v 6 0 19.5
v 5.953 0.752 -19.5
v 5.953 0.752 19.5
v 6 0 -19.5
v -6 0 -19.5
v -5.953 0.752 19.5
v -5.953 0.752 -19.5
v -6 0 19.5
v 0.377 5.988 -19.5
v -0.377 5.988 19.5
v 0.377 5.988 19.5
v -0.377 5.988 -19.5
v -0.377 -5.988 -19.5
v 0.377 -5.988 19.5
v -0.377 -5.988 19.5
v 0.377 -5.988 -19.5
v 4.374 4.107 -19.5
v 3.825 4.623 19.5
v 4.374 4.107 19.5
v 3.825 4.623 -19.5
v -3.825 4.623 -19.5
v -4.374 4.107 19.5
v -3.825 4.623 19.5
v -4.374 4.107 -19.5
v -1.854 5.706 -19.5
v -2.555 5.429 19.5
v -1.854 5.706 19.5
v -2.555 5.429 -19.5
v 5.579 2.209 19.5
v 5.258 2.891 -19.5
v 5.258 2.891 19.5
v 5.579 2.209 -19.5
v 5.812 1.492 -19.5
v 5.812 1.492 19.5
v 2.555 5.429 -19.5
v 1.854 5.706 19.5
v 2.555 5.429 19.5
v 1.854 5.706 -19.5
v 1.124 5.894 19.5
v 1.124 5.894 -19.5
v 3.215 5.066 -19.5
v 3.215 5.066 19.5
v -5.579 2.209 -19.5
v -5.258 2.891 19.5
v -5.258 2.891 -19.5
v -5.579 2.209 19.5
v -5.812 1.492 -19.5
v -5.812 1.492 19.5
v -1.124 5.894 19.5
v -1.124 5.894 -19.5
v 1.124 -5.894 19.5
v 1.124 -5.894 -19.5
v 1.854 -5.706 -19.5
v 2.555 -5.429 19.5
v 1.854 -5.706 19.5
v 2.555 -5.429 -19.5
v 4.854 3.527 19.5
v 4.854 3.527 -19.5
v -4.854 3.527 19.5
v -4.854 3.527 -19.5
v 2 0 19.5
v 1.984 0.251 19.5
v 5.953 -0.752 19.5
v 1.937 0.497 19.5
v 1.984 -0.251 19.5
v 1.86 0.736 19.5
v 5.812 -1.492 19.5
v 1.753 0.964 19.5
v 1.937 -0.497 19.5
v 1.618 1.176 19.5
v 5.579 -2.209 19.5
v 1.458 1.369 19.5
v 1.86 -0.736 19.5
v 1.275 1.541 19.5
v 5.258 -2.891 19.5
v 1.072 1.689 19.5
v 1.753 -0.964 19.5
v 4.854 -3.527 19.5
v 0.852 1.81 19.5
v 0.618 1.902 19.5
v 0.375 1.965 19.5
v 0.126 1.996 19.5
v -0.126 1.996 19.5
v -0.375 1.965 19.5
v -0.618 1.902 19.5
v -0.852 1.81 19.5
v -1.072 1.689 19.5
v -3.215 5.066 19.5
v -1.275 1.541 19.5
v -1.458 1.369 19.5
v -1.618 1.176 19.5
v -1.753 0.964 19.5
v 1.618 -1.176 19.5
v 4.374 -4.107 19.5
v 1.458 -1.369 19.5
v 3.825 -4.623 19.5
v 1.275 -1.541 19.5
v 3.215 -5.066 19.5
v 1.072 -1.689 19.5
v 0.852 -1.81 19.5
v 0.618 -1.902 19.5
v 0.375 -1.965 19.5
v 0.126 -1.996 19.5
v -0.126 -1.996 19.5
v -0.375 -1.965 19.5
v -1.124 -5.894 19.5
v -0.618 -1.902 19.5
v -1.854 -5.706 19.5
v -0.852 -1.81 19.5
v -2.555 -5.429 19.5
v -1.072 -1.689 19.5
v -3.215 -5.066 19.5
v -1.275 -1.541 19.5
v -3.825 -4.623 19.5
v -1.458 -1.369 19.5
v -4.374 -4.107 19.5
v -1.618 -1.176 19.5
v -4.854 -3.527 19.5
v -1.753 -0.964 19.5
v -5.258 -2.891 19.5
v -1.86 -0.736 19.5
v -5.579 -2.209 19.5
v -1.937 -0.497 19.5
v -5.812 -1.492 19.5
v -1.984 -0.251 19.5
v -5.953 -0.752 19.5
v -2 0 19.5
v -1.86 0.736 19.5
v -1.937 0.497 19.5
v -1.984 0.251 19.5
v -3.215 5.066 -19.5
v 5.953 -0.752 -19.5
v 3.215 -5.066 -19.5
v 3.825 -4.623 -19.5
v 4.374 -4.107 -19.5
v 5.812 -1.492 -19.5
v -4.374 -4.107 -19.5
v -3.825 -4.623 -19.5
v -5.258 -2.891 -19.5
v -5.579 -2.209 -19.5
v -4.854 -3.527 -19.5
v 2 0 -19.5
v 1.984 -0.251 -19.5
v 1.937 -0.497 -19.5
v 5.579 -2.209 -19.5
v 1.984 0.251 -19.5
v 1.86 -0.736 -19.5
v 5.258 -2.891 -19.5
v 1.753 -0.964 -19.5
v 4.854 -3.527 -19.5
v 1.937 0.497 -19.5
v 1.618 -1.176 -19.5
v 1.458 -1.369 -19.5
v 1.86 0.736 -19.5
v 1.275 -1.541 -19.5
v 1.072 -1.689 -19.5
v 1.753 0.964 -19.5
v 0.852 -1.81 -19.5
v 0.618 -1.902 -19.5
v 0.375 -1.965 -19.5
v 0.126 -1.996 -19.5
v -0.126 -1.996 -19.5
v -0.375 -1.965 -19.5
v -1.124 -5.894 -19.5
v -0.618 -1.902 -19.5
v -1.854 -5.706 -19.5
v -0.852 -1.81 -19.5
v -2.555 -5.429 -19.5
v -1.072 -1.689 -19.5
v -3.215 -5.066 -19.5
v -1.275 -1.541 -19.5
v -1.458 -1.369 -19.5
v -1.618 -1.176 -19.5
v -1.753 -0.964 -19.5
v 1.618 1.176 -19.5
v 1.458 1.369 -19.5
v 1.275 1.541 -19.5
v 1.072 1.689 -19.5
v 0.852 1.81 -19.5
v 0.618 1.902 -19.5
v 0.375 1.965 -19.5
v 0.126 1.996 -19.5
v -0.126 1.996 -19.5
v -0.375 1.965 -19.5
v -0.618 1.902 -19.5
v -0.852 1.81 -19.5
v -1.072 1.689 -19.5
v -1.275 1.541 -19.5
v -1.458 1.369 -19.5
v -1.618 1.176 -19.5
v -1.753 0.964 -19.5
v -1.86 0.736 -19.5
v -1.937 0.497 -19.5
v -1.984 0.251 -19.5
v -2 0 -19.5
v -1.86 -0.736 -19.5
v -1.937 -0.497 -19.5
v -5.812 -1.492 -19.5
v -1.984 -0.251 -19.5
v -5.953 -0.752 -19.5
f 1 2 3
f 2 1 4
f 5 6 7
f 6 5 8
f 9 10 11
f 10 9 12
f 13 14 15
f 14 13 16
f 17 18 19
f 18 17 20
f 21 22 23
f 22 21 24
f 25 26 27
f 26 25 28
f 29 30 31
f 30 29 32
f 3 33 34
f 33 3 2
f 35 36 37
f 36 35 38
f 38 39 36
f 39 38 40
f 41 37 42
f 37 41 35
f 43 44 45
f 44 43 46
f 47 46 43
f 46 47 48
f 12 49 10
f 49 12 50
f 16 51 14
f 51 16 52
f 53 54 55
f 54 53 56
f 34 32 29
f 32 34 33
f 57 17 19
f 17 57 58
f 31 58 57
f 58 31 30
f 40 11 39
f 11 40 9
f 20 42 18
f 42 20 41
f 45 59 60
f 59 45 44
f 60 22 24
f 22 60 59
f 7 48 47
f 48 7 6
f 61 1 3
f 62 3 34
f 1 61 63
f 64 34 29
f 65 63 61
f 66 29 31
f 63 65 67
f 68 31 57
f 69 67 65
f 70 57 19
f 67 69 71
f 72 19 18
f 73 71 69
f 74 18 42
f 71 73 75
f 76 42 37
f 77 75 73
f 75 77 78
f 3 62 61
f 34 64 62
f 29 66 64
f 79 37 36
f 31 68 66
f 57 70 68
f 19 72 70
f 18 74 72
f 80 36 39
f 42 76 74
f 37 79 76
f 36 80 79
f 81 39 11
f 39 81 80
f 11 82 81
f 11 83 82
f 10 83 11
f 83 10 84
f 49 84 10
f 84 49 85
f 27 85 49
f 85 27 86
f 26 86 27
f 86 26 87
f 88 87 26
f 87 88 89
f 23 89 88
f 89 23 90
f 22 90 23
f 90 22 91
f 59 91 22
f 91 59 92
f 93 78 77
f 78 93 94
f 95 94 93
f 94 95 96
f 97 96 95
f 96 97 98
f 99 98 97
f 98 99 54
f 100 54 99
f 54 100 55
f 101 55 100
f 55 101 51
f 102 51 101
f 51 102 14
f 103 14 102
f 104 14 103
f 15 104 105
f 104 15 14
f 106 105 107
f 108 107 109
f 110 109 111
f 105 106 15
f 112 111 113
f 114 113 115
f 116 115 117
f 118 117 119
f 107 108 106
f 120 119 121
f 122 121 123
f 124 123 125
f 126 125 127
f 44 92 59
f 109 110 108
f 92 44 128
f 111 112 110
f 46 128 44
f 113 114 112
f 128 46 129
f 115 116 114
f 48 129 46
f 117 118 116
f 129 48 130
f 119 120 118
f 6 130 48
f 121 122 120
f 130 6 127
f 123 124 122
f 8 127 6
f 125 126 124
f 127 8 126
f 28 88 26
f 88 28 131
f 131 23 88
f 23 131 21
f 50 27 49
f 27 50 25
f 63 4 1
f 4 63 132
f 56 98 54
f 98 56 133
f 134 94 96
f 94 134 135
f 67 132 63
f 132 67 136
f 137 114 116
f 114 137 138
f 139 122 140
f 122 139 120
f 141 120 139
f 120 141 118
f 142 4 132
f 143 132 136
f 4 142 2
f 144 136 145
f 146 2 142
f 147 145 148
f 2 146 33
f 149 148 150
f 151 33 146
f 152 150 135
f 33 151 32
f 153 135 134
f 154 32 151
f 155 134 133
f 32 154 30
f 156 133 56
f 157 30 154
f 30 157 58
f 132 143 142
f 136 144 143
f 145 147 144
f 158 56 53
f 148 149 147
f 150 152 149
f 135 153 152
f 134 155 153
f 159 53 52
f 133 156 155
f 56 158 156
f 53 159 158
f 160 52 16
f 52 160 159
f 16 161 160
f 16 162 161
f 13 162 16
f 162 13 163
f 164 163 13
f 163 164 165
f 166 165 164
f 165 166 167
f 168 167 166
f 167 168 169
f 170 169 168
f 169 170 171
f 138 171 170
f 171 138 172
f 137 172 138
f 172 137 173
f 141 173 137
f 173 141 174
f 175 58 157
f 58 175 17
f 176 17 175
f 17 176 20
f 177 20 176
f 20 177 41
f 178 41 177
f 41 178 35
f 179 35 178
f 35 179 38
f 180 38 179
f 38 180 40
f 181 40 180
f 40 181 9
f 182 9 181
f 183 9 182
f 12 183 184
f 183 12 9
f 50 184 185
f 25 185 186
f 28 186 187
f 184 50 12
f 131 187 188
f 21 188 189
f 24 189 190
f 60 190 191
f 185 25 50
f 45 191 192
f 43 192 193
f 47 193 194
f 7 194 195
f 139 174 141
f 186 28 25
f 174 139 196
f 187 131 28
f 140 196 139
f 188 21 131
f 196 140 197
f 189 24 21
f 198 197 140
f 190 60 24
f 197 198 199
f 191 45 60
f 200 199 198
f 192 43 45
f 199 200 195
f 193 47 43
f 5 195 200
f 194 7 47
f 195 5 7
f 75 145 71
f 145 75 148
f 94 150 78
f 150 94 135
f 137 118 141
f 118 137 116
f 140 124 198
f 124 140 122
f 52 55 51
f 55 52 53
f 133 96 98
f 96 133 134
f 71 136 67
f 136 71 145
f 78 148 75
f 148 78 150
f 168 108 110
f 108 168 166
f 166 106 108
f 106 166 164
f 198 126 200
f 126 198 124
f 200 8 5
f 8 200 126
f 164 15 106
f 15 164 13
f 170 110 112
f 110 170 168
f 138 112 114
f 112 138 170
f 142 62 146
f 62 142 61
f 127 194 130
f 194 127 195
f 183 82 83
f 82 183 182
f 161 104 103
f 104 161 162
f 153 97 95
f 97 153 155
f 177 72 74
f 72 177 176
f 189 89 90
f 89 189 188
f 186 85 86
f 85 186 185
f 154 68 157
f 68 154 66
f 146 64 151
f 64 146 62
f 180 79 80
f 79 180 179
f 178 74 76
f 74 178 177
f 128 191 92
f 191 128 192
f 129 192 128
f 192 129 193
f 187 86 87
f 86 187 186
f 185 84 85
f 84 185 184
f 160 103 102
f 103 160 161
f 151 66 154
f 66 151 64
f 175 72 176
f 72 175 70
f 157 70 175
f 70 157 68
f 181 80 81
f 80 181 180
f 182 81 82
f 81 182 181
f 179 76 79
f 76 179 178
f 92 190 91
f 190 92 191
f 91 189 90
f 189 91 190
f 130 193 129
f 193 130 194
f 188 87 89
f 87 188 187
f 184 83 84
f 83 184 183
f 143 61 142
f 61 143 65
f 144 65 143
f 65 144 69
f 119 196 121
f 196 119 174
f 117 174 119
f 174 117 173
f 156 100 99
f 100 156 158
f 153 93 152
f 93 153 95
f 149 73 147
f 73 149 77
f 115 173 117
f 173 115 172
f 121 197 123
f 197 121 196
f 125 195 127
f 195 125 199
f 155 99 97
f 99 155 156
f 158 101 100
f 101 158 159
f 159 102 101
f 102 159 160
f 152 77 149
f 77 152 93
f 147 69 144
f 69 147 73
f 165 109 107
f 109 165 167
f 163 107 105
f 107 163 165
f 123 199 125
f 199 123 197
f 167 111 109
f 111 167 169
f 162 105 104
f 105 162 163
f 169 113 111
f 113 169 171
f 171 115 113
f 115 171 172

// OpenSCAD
$fn = 50;


difference() {
	union() {
		translate(v = [0, 0, -19.5000000000]) {
			cylinder(h = 39, r = 6.0000000000);
		}
	}
	union() {
		translate(v = [0, 0, -100.0000000000]) {
			cylinder(h = 200, r = 2);
		}
	}
}
